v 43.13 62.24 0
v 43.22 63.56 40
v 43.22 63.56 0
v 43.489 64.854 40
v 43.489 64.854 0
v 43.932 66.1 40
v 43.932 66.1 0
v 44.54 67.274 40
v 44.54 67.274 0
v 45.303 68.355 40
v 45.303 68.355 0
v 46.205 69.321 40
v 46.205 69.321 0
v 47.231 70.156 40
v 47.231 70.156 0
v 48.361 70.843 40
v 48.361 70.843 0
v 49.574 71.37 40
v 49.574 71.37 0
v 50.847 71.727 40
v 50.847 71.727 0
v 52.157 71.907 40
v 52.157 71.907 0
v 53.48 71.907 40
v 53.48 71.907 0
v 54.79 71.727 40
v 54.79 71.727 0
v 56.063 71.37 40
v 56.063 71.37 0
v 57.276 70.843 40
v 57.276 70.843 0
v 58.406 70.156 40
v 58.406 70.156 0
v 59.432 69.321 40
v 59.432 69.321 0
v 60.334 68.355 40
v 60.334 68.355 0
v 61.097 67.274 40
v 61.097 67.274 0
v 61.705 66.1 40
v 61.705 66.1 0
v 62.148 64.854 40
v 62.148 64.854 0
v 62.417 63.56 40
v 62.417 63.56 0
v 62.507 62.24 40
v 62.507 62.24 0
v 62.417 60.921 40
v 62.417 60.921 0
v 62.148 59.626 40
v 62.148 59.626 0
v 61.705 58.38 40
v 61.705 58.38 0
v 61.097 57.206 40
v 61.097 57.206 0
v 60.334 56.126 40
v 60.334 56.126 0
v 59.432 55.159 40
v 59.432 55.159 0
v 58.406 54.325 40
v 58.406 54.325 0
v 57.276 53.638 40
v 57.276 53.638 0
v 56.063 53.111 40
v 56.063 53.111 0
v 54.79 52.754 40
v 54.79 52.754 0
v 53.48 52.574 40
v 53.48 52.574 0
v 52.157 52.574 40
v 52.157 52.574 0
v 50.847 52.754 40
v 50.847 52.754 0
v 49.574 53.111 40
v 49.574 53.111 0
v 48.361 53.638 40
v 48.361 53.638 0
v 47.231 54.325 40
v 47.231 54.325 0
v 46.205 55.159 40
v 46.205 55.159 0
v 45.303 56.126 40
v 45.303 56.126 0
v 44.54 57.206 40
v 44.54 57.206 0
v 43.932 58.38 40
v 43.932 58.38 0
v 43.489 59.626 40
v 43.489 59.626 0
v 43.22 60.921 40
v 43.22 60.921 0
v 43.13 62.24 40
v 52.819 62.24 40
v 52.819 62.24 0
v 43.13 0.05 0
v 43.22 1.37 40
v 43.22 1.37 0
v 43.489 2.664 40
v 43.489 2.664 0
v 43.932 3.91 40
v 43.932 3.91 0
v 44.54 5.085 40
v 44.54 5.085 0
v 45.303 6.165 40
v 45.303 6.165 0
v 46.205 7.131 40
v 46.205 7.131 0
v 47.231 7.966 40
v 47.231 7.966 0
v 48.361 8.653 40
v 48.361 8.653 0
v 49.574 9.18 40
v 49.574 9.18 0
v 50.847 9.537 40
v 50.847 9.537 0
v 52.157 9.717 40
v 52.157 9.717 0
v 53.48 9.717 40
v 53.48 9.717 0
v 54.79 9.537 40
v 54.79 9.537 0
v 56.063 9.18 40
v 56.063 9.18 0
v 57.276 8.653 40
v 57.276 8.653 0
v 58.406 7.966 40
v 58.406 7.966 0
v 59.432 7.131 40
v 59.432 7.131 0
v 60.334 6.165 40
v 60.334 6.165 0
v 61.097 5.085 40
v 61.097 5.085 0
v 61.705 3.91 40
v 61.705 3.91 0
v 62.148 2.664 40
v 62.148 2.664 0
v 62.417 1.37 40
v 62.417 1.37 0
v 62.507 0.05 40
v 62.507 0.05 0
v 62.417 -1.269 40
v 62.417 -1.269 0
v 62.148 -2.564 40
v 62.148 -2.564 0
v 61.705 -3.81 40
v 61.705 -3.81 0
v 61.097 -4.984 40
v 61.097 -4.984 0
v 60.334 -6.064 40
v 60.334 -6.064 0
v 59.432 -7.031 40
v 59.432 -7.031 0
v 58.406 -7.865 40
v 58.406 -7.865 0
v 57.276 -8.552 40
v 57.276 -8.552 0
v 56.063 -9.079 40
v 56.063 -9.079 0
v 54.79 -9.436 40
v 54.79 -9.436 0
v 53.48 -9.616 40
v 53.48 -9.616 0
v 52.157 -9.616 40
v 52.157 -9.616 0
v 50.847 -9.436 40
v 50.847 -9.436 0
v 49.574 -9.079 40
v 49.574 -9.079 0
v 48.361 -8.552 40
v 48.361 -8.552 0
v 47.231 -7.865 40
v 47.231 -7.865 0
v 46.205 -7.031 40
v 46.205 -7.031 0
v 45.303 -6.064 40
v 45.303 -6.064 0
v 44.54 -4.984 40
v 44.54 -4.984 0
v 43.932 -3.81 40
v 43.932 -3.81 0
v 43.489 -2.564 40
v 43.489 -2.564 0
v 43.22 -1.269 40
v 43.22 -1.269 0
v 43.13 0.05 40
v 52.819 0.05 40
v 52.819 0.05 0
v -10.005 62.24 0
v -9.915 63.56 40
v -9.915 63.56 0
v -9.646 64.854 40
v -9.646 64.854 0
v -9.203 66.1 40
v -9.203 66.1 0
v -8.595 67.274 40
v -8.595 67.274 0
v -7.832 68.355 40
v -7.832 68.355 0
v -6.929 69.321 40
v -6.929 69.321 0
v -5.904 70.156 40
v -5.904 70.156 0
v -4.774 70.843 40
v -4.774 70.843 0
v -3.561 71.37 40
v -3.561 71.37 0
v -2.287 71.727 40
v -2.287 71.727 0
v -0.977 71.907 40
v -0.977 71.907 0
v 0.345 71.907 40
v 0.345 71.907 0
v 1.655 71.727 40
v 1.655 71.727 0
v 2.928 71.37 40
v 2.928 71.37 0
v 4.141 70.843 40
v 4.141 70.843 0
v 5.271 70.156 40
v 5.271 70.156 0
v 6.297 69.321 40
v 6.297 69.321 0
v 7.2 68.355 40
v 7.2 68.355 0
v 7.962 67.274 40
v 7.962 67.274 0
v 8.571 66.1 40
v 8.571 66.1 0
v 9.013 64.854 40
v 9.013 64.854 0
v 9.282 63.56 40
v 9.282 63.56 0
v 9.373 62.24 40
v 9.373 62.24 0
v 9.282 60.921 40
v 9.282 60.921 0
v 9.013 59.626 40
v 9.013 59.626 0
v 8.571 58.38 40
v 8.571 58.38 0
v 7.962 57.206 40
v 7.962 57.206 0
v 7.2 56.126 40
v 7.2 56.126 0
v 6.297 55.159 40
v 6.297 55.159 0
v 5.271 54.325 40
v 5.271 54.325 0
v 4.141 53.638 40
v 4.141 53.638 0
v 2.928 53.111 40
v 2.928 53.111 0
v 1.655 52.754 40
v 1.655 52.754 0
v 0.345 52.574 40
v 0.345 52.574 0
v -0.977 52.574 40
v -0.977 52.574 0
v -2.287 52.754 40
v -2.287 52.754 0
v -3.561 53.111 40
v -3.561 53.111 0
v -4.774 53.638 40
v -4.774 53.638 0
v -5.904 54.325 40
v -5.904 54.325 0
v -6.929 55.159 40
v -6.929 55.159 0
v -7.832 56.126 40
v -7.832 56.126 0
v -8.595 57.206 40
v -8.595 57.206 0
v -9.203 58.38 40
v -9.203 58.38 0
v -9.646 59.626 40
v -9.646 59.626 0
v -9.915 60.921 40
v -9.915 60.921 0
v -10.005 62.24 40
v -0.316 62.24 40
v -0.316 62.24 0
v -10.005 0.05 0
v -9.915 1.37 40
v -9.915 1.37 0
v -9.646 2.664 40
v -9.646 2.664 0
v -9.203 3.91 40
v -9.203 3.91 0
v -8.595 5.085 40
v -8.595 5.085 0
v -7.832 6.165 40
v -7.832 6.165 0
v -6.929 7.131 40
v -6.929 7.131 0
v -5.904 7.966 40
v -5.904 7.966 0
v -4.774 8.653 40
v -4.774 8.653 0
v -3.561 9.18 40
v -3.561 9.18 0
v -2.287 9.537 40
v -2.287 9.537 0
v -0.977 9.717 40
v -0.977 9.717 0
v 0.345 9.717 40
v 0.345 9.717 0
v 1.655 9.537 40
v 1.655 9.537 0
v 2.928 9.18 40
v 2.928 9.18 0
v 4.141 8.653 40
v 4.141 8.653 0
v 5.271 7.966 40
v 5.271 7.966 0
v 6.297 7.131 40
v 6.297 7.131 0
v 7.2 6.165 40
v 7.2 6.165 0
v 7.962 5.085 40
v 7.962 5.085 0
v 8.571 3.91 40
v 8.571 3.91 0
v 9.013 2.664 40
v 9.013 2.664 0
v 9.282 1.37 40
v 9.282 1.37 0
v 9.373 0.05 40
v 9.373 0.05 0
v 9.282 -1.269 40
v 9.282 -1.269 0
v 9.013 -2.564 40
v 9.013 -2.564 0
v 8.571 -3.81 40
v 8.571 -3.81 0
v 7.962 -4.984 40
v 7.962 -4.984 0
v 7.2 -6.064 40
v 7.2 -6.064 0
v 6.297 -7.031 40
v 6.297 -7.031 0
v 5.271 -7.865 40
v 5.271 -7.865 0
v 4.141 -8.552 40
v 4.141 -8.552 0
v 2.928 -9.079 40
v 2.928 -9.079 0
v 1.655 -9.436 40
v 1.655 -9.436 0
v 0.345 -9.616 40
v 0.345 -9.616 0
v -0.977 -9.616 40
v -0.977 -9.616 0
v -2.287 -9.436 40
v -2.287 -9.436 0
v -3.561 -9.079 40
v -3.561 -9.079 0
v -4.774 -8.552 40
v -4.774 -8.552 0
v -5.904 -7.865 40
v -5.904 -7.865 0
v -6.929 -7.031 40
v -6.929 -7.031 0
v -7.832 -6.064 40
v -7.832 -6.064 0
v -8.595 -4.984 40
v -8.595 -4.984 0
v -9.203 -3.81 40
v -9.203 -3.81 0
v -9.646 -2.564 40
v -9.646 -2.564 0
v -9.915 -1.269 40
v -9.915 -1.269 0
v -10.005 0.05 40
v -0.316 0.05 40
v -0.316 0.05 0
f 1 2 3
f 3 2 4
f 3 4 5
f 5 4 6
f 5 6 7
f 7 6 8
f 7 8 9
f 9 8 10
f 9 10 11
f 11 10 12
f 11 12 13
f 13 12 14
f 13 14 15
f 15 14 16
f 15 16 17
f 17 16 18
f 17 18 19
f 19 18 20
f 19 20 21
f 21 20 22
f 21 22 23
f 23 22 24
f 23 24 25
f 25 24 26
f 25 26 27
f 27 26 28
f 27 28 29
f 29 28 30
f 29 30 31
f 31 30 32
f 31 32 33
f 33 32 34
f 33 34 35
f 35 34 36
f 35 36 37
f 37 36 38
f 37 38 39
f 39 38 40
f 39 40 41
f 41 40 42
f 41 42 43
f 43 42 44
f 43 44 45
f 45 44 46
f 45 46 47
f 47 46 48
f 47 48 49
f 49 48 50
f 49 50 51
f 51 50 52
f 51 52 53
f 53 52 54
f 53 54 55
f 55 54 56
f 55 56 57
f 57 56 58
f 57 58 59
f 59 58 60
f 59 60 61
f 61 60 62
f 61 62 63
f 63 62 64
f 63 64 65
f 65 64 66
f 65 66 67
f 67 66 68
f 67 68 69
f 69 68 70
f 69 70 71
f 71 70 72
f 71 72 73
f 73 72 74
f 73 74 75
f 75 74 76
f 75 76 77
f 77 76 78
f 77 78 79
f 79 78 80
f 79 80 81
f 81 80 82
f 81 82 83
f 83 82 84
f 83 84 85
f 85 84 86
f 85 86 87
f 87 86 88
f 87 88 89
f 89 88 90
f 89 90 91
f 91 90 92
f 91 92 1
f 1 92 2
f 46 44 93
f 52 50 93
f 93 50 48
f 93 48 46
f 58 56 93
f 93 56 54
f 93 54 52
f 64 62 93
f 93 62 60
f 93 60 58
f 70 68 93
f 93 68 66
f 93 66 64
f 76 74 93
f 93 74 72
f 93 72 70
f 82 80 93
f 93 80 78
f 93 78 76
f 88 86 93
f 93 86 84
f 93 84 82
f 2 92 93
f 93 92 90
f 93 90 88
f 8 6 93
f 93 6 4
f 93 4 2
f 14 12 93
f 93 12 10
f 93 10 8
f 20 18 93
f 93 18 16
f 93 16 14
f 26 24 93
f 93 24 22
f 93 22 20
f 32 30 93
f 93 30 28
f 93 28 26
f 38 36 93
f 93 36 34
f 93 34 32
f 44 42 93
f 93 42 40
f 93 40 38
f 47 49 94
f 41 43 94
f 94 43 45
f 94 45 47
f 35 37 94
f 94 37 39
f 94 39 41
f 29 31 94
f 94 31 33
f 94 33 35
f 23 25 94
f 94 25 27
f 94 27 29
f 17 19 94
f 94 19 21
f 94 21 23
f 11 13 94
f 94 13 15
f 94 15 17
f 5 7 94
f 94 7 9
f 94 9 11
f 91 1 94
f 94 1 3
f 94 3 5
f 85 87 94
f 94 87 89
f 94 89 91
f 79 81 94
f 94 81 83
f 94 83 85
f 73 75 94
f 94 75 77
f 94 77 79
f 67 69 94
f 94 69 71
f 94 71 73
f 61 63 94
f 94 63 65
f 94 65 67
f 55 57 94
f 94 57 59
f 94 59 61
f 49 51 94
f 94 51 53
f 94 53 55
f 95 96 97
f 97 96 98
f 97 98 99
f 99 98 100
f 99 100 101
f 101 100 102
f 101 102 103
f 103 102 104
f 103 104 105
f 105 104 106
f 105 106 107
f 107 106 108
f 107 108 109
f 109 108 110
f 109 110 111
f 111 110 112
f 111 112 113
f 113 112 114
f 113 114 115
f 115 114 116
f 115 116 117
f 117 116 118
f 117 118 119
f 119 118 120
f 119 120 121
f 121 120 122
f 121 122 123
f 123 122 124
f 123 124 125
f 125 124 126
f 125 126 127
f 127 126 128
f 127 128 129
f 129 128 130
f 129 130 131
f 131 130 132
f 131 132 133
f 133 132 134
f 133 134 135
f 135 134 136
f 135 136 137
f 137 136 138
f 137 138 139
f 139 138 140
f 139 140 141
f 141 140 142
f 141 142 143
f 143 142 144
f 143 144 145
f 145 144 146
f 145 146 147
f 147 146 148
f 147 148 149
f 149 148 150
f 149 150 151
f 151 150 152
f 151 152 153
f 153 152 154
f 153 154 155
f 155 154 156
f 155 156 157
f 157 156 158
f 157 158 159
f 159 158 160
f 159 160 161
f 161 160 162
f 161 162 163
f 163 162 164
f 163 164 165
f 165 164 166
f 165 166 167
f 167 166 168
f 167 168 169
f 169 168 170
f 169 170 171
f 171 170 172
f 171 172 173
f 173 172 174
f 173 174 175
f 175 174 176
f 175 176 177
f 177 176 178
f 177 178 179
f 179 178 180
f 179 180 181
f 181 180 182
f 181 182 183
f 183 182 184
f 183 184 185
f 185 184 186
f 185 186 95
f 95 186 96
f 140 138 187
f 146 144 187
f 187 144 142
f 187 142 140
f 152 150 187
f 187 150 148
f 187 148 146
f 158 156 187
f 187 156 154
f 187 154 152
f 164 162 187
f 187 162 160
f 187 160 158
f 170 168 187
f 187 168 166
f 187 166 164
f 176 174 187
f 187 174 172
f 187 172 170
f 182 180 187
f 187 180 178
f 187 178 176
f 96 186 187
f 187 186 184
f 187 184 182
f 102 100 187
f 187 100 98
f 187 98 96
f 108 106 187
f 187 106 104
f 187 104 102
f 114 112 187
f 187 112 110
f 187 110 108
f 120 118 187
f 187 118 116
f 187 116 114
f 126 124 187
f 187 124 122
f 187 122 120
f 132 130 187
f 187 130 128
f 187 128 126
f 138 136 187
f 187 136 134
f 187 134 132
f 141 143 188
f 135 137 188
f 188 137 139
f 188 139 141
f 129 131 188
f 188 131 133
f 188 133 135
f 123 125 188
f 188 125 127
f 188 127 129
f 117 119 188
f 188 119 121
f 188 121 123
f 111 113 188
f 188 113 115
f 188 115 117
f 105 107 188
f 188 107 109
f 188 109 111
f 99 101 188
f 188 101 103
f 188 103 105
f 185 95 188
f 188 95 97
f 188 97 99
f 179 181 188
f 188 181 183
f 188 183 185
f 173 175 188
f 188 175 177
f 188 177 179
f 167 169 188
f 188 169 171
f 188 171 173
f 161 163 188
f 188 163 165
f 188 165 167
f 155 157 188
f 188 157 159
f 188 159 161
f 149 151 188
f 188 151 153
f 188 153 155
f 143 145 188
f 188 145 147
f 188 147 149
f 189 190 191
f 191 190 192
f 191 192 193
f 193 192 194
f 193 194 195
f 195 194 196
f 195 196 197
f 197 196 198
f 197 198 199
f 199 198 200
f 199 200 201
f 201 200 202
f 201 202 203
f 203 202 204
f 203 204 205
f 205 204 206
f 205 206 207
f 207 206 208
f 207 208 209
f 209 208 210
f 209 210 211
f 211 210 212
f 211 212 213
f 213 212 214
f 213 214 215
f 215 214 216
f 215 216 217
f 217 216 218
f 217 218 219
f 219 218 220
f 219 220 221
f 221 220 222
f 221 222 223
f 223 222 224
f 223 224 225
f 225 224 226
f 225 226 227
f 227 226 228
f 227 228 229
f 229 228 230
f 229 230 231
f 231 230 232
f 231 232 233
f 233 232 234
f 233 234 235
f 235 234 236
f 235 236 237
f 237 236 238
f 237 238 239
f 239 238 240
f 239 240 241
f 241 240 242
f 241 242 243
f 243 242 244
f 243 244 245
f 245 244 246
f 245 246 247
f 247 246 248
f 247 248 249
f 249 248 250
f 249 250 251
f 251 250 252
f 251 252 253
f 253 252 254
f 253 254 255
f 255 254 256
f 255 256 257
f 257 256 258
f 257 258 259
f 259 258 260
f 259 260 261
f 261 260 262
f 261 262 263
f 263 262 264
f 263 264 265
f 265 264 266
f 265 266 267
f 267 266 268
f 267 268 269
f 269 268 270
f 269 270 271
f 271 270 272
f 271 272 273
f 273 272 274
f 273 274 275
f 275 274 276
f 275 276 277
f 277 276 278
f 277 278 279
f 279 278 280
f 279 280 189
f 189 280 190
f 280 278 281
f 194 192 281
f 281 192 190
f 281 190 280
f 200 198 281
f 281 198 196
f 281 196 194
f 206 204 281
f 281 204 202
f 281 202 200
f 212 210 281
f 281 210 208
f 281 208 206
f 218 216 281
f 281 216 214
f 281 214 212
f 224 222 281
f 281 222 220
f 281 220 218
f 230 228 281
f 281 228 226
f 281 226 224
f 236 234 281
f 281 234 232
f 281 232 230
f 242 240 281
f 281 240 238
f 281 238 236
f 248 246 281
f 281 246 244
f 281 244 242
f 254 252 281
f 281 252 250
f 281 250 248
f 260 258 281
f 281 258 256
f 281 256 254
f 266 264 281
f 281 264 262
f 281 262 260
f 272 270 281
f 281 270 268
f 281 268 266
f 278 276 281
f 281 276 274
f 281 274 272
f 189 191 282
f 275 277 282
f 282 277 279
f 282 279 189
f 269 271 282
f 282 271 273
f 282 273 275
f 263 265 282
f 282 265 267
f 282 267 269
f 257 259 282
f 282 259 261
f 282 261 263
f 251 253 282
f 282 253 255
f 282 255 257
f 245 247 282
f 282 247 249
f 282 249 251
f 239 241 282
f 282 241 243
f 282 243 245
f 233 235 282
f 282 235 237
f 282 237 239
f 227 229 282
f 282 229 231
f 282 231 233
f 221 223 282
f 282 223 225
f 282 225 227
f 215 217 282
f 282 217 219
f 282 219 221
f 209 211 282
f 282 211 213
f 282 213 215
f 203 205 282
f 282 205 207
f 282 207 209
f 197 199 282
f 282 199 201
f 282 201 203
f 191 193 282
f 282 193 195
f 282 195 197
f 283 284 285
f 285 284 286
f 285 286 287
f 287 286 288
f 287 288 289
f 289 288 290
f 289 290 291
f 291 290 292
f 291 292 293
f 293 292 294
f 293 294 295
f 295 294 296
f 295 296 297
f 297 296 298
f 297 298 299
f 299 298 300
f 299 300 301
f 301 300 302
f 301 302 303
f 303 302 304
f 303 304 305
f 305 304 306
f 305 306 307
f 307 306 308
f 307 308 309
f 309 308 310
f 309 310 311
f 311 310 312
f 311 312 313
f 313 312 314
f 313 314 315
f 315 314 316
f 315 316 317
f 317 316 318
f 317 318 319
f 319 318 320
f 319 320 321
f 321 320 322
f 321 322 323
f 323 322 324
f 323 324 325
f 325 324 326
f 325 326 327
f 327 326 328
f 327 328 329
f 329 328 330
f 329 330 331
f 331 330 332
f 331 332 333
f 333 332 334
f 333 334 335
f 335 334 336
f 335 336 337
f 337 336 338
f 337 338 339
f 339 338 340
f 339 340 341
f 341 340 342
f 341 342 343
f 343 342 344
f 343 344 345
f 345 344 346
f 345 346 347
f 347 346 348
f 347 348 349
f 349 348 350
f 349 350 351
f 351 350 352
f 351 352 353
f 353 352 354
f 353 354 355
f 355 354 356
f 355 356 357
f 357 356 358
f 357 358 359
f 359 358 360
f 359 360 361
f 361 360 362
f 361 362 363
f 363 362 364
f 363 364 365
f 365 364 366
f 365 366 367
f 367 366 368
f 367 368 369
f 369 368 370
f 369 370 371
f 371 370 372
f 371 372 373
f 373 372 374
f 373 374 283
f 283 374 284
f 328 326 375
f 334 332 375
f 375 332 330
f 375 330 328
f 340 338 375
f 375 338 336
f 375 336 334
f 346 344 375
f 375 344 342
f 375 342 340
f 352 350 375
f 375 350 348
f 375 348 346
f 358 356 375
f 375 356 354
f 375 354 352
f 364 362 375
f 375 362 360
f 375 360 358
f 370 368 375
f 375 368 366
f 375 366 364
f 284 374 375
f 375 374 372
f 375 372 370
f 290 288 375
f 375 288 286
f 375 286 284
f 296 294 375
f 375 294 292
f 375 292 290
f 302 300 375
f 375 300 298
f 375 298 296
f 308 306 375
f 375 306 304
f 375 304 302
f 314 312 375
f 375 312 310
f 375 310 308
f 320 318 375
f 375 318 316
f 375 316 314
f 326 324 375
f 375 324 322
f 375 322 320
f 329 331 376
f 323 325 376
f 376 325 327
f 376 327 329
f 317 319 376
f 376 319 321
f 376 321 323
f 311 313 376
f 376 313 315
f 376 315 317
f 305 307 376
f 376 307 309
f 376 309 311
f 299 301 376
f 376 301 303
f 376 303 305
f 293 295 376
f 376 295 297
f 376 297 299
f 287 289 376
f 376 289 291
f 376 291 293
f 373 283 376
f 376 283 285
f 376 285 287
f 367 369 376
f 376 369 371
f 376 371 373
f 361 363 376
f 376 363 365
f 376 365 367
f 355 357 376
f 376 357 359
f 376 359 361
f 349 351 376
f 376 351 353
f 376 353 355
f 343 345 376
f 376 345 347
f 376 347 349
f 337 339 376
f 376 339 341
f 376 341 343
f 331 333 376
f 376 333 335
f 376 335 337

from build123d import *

# Parameters (mm, degrees)
SKETCH1_R             = 9.688899653
BOSS_EXTRUDE1_DEPTH   = 40
BOSS_EXTRUDE1_2_DEPTH = 40
BOSS_EXTRUDE1_3_DEPTH = 40
BOSS_EXTRUDE1_4_DEPTH = 40


with BuildPart() as part:
    # Sketch1 → Boss-Extrude1 (new body)
    with BuildSketch(Plane.XY):
        with Locations((52.818543782, 62.240299842)):
            Circle(SKETCH1_R)
    extrude(amount=BOSS_EXTRUDE1_DEPTH)


with BuildPart() as body_2:
    # Sketch1 → Boss-Extrude1 2 (new body)
    with BuildSketch(Plane.XY):
        with Locations((52.818543782, 0.050367456)):
            Circle(SKETCH1_R)
    extrude(amount=BOSS_EXTRUDE1_2_DEPTH)


with BuildPart() as body_3:
    # Sketch1 → Boss-Extrude1 3 (new body)
    with BuildSketch(Plane.XY):
        with Locations(Location((-0.316192678, 62.240299842, 0), (0, 0, 180))):
            Circle(SKETCH1_R)
    extrude(amount=BOSS_EXTRUDE1_3_DEPTH)


with BuildPart() as body_4:
    # Sketch1 → Boss-Extrude1 4 (new body)
    with BuildSketch(Plane.XY):
        with Locations((-0.316192678, 0.050367456)):
            Circle(SKETCH1_R)
    extrude(amount=BOSS_EXTRUDE1_4_DEPTH)


solid = Compound([part.part, body_2.part, body_3.part, body_4.part])
